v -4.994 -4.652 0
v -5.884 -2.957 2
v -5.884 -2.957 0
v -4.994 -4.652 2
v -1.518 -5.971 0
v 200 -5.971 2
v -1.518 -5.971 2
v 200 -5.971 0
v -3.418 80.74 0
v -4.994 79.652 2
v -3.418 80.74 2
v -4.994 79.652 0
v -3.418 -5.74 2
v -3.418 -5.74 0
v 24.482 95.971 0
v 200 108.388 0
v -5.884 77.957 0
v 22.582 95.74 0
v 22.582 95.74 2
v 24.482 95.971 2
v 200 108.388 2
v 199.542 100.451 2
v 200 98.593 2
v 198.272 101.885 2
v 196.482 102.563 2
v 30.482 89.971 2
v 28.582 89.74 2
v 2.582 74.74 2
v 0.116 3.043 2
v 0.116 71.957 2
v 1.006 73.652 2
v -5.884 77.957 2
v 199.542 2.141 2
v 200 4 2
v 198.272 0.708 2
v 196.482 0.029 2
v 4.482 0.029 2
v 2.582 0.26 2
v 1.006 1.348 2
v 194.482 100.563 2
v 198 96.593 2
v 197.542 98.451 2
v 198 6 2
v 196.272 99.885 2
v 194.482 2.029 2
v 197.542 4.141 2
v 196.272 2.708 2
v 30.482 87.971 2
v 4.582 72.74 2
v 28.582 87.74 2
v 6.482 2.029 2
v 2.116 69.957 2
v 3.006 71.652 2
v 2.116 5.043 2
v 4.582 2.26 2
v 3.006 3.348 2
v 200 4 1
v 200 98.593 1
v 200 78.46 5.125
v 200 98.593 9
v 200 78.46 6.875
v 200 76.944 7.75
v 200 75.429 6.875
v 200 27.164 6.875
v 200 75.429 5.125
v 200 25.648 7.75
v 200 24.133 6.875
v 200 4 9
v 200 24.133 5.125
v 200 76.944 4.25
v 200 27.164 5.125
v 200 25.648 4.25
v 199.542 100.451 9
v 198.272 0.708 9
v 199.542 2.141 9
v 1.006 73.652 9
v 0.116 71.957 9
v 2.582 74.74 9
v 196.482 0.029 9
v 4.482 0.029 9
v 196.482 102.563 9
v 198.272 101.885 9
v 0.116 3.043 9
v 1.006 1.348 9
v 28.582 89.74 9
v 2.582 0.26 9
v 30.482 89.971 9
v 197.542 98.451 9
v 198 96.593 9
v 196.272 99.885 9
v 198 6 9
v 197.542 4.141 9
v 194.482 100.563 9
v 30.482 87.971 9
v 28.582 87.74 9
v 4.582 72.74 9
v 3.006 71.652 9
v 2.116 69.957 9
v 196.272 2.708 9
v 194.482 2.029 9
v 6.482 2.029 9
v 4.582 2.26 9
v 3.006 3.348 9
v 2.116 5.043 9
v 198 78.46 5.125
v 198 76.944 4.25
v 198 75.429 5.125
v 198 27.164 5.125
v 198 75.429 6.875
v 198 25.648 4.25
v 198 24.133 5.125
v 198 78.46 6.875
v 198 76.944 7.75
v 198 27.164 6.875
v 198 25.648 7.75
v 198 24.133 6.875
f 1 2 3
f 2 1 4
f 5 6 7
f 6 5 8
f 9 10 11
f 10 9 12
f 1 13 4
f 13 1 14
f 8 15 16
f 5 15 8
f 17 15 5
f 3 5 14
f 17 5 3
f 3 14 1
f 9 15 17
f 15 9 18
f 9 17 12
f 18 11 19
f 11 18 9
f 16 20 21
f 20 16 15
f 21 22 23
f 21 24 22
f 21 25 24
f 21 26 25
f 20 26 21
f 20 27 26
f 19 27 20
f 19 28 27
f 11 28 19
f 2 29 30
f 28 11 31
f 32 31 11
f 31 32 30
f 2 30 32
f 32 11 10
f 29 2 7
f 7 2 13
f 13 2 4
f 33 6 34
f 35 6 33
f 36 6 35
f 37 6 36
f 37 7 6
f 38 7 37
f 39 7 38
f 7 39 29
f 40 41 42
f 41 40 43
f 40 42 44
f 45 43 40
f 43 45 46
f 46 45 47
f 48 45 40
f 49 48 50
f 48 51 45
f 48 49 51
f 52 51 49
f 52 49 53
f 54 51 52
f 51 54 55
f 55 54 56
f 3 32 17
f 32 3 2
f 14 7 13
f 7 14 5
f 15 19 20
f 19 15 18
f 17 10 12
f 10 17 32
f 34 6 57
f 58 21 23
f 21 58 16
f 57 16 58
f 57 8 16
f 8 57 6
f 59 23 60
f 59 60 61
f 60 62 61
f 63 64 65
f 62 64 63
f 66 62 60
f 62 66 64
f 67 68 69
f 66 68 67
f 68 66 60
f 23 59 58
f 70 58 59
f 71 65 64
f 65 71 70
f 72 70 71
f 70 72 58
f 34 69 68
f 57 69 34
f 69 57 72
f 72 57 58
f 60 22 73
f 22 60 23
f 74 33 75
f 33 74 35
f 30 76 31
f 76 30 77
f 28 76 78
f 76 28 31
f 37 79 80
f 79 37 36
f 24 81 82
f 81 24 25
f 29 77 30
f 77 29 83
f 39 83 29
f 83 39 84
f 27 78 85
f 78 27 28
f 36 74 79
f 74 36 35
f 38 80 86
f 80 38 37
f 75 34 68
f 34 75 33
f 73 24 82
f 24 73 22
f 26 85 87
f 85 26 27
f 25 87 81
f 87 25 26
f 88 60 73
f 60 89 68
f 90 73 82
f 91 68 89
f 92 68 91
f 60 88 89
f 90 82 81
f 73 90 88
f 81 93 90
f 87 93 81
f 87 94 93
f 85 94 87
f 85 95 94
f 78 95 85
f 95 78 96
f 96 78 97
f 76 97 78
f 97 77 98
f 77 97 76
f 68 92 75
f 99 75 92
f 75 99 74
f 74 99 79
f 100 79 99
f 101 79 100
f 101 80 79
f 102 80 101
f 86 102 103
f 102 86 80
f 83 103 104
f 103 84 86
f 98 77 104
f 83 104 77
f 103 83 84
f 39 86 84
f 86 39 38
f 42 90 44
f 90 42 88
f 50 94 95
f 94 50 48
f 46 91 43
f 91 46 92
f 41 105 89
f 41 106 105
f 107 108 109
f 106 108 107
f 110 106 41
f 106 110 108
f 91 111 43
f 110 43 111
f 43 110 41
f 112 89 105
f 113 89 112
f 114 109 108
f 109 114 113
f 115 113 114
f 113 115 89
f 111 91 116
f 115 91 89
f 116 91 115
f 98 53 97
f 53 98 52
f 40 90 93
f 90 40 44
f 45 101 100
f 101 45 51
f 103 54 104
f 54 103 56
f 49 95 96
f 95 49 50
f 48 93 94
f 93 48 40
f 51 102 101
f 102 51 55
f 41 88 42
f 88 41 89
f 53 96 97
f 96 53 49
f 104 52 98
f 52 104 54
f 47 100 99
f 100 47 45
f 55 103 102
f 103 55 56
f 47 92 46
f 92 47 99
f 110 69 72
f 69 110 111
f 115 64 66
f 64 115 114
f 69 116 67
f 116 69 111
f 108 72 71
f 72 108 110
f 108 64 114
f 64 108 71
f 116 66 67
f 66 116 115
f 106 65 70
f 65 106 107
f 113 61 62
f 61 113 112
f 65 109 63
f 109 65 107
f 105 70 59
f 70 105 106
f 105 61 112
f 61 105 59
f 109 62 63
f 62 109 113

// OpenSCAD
end_depth = 75;
middle_depth = 90;
middle_width = 30;

overlap = 6;

total_depth = 110;
total_width = 600;

// Calculation for side
depth_offset = total_depth-middle_depth;
width_offset = (total_width/2)-middle_width;
top_angle = atan(depth_offset / width_offset);

// Should be 200, adjusting for testing
part_width = 200;
part_depth = tan(top_angle) * (part_width - middle_width) + middle_depth;

// TODO check usage
thickness = 1;
border_height = 8;
border_thickness = 2;

screw_diameter = 3.5;

module side() {
    rounding = 4;
    
    translate([-overlap, -overlap, 0]) difference() {
        minkowski() {
            linear_extrude(height=thickness) {
                    polygon(points = [
                [0 + rounding, 0 + rounding],
                [0 + rounding, end_depth + 2 * overlap - rounding],
                [middle_width, middle_depth + 2 * overlap - rounding],
                [part_width + 2 * overlap - rounding, part_depth + 2 * overlap - rounding],
                [part_width + 2 * overlap - rounding, 0 + rounding]
                ]);
            }
            cylinder(r=rounding,h=thickness);
        }
        translate([overlap + part_width, 0, -1]) cube([2 * overlap, 2 * (end_depth + 2 * overlap), 2 * thickness + 2]);
    }


    translate([0, 0, thickness]) difference() {
        minkowski() {
            linear_extrude(height=border_height/2) {
                polygon(points = [
                    [0 + rounding, 0 + rounding],
                    [0 + rounding, end_depth - rounding],
                    [middle_width, middle_depth - rounding],
                    [part_width - rounding, part_depth - rounding],
                    [part_width - rounding, 0 + rounding]
                ]);
            }
            cylinder(r=rounding,h=border_height/2);
        }
        translate([0, 0, -1]) minkowski() {
            linear_extrude(height=border_height + 2) {
                polygon(points = [
                    [0 + rounding + border_thickness, 0 + rounding + border_thickness],
                    [0 + rounding + border_thickness, end_depth - rounding - border_thickness],
                    [middle_width, middle_depth - rounding - border_thickness],
                    [part_width - rounding - border_thickness, part_depth - rounding - border_thickness],
                    [part_width - rounding - border_thickness, 0 + rounding + border_thickness]
                ]);
            }
            cylinder(r=rounding,h=border_height);
        }
        translate([part_width - border_thickness - 1, part_depth / 4, thickness + border_height / 2]) rotate([0, 90, 0]) cylinder(d=screw_diameter, 2 * border_thickness);
        translate([part_width - border_thickness - 1, 3 * part_depth / 4, thickness + border_height / 2]) rotate([0, 90, 0]) cylinder(d=screw_diameter, 2 * border_thickness);
    }
}

module total() {
    rounding = 4;
    minkowski() {
        linear_extrude(height=border_height) {
                polygon(points = [
            [0 + rounding, 0 + rounding],
            [0 + rounding, end_depth - rounding],
            [middle_width, middle_depth - rounding],
            [total_width/2, total_depth - rounding],
            [total_width - middle_width, middle_depth - rounding],
            [total_width - rounding, end_depth - rounding],
            [total_width - rounding, 0 + rounding]
            ]);
        }
        cylinder(r=rounding,h=border_height);
    }
}

//color("red") total();
side();
